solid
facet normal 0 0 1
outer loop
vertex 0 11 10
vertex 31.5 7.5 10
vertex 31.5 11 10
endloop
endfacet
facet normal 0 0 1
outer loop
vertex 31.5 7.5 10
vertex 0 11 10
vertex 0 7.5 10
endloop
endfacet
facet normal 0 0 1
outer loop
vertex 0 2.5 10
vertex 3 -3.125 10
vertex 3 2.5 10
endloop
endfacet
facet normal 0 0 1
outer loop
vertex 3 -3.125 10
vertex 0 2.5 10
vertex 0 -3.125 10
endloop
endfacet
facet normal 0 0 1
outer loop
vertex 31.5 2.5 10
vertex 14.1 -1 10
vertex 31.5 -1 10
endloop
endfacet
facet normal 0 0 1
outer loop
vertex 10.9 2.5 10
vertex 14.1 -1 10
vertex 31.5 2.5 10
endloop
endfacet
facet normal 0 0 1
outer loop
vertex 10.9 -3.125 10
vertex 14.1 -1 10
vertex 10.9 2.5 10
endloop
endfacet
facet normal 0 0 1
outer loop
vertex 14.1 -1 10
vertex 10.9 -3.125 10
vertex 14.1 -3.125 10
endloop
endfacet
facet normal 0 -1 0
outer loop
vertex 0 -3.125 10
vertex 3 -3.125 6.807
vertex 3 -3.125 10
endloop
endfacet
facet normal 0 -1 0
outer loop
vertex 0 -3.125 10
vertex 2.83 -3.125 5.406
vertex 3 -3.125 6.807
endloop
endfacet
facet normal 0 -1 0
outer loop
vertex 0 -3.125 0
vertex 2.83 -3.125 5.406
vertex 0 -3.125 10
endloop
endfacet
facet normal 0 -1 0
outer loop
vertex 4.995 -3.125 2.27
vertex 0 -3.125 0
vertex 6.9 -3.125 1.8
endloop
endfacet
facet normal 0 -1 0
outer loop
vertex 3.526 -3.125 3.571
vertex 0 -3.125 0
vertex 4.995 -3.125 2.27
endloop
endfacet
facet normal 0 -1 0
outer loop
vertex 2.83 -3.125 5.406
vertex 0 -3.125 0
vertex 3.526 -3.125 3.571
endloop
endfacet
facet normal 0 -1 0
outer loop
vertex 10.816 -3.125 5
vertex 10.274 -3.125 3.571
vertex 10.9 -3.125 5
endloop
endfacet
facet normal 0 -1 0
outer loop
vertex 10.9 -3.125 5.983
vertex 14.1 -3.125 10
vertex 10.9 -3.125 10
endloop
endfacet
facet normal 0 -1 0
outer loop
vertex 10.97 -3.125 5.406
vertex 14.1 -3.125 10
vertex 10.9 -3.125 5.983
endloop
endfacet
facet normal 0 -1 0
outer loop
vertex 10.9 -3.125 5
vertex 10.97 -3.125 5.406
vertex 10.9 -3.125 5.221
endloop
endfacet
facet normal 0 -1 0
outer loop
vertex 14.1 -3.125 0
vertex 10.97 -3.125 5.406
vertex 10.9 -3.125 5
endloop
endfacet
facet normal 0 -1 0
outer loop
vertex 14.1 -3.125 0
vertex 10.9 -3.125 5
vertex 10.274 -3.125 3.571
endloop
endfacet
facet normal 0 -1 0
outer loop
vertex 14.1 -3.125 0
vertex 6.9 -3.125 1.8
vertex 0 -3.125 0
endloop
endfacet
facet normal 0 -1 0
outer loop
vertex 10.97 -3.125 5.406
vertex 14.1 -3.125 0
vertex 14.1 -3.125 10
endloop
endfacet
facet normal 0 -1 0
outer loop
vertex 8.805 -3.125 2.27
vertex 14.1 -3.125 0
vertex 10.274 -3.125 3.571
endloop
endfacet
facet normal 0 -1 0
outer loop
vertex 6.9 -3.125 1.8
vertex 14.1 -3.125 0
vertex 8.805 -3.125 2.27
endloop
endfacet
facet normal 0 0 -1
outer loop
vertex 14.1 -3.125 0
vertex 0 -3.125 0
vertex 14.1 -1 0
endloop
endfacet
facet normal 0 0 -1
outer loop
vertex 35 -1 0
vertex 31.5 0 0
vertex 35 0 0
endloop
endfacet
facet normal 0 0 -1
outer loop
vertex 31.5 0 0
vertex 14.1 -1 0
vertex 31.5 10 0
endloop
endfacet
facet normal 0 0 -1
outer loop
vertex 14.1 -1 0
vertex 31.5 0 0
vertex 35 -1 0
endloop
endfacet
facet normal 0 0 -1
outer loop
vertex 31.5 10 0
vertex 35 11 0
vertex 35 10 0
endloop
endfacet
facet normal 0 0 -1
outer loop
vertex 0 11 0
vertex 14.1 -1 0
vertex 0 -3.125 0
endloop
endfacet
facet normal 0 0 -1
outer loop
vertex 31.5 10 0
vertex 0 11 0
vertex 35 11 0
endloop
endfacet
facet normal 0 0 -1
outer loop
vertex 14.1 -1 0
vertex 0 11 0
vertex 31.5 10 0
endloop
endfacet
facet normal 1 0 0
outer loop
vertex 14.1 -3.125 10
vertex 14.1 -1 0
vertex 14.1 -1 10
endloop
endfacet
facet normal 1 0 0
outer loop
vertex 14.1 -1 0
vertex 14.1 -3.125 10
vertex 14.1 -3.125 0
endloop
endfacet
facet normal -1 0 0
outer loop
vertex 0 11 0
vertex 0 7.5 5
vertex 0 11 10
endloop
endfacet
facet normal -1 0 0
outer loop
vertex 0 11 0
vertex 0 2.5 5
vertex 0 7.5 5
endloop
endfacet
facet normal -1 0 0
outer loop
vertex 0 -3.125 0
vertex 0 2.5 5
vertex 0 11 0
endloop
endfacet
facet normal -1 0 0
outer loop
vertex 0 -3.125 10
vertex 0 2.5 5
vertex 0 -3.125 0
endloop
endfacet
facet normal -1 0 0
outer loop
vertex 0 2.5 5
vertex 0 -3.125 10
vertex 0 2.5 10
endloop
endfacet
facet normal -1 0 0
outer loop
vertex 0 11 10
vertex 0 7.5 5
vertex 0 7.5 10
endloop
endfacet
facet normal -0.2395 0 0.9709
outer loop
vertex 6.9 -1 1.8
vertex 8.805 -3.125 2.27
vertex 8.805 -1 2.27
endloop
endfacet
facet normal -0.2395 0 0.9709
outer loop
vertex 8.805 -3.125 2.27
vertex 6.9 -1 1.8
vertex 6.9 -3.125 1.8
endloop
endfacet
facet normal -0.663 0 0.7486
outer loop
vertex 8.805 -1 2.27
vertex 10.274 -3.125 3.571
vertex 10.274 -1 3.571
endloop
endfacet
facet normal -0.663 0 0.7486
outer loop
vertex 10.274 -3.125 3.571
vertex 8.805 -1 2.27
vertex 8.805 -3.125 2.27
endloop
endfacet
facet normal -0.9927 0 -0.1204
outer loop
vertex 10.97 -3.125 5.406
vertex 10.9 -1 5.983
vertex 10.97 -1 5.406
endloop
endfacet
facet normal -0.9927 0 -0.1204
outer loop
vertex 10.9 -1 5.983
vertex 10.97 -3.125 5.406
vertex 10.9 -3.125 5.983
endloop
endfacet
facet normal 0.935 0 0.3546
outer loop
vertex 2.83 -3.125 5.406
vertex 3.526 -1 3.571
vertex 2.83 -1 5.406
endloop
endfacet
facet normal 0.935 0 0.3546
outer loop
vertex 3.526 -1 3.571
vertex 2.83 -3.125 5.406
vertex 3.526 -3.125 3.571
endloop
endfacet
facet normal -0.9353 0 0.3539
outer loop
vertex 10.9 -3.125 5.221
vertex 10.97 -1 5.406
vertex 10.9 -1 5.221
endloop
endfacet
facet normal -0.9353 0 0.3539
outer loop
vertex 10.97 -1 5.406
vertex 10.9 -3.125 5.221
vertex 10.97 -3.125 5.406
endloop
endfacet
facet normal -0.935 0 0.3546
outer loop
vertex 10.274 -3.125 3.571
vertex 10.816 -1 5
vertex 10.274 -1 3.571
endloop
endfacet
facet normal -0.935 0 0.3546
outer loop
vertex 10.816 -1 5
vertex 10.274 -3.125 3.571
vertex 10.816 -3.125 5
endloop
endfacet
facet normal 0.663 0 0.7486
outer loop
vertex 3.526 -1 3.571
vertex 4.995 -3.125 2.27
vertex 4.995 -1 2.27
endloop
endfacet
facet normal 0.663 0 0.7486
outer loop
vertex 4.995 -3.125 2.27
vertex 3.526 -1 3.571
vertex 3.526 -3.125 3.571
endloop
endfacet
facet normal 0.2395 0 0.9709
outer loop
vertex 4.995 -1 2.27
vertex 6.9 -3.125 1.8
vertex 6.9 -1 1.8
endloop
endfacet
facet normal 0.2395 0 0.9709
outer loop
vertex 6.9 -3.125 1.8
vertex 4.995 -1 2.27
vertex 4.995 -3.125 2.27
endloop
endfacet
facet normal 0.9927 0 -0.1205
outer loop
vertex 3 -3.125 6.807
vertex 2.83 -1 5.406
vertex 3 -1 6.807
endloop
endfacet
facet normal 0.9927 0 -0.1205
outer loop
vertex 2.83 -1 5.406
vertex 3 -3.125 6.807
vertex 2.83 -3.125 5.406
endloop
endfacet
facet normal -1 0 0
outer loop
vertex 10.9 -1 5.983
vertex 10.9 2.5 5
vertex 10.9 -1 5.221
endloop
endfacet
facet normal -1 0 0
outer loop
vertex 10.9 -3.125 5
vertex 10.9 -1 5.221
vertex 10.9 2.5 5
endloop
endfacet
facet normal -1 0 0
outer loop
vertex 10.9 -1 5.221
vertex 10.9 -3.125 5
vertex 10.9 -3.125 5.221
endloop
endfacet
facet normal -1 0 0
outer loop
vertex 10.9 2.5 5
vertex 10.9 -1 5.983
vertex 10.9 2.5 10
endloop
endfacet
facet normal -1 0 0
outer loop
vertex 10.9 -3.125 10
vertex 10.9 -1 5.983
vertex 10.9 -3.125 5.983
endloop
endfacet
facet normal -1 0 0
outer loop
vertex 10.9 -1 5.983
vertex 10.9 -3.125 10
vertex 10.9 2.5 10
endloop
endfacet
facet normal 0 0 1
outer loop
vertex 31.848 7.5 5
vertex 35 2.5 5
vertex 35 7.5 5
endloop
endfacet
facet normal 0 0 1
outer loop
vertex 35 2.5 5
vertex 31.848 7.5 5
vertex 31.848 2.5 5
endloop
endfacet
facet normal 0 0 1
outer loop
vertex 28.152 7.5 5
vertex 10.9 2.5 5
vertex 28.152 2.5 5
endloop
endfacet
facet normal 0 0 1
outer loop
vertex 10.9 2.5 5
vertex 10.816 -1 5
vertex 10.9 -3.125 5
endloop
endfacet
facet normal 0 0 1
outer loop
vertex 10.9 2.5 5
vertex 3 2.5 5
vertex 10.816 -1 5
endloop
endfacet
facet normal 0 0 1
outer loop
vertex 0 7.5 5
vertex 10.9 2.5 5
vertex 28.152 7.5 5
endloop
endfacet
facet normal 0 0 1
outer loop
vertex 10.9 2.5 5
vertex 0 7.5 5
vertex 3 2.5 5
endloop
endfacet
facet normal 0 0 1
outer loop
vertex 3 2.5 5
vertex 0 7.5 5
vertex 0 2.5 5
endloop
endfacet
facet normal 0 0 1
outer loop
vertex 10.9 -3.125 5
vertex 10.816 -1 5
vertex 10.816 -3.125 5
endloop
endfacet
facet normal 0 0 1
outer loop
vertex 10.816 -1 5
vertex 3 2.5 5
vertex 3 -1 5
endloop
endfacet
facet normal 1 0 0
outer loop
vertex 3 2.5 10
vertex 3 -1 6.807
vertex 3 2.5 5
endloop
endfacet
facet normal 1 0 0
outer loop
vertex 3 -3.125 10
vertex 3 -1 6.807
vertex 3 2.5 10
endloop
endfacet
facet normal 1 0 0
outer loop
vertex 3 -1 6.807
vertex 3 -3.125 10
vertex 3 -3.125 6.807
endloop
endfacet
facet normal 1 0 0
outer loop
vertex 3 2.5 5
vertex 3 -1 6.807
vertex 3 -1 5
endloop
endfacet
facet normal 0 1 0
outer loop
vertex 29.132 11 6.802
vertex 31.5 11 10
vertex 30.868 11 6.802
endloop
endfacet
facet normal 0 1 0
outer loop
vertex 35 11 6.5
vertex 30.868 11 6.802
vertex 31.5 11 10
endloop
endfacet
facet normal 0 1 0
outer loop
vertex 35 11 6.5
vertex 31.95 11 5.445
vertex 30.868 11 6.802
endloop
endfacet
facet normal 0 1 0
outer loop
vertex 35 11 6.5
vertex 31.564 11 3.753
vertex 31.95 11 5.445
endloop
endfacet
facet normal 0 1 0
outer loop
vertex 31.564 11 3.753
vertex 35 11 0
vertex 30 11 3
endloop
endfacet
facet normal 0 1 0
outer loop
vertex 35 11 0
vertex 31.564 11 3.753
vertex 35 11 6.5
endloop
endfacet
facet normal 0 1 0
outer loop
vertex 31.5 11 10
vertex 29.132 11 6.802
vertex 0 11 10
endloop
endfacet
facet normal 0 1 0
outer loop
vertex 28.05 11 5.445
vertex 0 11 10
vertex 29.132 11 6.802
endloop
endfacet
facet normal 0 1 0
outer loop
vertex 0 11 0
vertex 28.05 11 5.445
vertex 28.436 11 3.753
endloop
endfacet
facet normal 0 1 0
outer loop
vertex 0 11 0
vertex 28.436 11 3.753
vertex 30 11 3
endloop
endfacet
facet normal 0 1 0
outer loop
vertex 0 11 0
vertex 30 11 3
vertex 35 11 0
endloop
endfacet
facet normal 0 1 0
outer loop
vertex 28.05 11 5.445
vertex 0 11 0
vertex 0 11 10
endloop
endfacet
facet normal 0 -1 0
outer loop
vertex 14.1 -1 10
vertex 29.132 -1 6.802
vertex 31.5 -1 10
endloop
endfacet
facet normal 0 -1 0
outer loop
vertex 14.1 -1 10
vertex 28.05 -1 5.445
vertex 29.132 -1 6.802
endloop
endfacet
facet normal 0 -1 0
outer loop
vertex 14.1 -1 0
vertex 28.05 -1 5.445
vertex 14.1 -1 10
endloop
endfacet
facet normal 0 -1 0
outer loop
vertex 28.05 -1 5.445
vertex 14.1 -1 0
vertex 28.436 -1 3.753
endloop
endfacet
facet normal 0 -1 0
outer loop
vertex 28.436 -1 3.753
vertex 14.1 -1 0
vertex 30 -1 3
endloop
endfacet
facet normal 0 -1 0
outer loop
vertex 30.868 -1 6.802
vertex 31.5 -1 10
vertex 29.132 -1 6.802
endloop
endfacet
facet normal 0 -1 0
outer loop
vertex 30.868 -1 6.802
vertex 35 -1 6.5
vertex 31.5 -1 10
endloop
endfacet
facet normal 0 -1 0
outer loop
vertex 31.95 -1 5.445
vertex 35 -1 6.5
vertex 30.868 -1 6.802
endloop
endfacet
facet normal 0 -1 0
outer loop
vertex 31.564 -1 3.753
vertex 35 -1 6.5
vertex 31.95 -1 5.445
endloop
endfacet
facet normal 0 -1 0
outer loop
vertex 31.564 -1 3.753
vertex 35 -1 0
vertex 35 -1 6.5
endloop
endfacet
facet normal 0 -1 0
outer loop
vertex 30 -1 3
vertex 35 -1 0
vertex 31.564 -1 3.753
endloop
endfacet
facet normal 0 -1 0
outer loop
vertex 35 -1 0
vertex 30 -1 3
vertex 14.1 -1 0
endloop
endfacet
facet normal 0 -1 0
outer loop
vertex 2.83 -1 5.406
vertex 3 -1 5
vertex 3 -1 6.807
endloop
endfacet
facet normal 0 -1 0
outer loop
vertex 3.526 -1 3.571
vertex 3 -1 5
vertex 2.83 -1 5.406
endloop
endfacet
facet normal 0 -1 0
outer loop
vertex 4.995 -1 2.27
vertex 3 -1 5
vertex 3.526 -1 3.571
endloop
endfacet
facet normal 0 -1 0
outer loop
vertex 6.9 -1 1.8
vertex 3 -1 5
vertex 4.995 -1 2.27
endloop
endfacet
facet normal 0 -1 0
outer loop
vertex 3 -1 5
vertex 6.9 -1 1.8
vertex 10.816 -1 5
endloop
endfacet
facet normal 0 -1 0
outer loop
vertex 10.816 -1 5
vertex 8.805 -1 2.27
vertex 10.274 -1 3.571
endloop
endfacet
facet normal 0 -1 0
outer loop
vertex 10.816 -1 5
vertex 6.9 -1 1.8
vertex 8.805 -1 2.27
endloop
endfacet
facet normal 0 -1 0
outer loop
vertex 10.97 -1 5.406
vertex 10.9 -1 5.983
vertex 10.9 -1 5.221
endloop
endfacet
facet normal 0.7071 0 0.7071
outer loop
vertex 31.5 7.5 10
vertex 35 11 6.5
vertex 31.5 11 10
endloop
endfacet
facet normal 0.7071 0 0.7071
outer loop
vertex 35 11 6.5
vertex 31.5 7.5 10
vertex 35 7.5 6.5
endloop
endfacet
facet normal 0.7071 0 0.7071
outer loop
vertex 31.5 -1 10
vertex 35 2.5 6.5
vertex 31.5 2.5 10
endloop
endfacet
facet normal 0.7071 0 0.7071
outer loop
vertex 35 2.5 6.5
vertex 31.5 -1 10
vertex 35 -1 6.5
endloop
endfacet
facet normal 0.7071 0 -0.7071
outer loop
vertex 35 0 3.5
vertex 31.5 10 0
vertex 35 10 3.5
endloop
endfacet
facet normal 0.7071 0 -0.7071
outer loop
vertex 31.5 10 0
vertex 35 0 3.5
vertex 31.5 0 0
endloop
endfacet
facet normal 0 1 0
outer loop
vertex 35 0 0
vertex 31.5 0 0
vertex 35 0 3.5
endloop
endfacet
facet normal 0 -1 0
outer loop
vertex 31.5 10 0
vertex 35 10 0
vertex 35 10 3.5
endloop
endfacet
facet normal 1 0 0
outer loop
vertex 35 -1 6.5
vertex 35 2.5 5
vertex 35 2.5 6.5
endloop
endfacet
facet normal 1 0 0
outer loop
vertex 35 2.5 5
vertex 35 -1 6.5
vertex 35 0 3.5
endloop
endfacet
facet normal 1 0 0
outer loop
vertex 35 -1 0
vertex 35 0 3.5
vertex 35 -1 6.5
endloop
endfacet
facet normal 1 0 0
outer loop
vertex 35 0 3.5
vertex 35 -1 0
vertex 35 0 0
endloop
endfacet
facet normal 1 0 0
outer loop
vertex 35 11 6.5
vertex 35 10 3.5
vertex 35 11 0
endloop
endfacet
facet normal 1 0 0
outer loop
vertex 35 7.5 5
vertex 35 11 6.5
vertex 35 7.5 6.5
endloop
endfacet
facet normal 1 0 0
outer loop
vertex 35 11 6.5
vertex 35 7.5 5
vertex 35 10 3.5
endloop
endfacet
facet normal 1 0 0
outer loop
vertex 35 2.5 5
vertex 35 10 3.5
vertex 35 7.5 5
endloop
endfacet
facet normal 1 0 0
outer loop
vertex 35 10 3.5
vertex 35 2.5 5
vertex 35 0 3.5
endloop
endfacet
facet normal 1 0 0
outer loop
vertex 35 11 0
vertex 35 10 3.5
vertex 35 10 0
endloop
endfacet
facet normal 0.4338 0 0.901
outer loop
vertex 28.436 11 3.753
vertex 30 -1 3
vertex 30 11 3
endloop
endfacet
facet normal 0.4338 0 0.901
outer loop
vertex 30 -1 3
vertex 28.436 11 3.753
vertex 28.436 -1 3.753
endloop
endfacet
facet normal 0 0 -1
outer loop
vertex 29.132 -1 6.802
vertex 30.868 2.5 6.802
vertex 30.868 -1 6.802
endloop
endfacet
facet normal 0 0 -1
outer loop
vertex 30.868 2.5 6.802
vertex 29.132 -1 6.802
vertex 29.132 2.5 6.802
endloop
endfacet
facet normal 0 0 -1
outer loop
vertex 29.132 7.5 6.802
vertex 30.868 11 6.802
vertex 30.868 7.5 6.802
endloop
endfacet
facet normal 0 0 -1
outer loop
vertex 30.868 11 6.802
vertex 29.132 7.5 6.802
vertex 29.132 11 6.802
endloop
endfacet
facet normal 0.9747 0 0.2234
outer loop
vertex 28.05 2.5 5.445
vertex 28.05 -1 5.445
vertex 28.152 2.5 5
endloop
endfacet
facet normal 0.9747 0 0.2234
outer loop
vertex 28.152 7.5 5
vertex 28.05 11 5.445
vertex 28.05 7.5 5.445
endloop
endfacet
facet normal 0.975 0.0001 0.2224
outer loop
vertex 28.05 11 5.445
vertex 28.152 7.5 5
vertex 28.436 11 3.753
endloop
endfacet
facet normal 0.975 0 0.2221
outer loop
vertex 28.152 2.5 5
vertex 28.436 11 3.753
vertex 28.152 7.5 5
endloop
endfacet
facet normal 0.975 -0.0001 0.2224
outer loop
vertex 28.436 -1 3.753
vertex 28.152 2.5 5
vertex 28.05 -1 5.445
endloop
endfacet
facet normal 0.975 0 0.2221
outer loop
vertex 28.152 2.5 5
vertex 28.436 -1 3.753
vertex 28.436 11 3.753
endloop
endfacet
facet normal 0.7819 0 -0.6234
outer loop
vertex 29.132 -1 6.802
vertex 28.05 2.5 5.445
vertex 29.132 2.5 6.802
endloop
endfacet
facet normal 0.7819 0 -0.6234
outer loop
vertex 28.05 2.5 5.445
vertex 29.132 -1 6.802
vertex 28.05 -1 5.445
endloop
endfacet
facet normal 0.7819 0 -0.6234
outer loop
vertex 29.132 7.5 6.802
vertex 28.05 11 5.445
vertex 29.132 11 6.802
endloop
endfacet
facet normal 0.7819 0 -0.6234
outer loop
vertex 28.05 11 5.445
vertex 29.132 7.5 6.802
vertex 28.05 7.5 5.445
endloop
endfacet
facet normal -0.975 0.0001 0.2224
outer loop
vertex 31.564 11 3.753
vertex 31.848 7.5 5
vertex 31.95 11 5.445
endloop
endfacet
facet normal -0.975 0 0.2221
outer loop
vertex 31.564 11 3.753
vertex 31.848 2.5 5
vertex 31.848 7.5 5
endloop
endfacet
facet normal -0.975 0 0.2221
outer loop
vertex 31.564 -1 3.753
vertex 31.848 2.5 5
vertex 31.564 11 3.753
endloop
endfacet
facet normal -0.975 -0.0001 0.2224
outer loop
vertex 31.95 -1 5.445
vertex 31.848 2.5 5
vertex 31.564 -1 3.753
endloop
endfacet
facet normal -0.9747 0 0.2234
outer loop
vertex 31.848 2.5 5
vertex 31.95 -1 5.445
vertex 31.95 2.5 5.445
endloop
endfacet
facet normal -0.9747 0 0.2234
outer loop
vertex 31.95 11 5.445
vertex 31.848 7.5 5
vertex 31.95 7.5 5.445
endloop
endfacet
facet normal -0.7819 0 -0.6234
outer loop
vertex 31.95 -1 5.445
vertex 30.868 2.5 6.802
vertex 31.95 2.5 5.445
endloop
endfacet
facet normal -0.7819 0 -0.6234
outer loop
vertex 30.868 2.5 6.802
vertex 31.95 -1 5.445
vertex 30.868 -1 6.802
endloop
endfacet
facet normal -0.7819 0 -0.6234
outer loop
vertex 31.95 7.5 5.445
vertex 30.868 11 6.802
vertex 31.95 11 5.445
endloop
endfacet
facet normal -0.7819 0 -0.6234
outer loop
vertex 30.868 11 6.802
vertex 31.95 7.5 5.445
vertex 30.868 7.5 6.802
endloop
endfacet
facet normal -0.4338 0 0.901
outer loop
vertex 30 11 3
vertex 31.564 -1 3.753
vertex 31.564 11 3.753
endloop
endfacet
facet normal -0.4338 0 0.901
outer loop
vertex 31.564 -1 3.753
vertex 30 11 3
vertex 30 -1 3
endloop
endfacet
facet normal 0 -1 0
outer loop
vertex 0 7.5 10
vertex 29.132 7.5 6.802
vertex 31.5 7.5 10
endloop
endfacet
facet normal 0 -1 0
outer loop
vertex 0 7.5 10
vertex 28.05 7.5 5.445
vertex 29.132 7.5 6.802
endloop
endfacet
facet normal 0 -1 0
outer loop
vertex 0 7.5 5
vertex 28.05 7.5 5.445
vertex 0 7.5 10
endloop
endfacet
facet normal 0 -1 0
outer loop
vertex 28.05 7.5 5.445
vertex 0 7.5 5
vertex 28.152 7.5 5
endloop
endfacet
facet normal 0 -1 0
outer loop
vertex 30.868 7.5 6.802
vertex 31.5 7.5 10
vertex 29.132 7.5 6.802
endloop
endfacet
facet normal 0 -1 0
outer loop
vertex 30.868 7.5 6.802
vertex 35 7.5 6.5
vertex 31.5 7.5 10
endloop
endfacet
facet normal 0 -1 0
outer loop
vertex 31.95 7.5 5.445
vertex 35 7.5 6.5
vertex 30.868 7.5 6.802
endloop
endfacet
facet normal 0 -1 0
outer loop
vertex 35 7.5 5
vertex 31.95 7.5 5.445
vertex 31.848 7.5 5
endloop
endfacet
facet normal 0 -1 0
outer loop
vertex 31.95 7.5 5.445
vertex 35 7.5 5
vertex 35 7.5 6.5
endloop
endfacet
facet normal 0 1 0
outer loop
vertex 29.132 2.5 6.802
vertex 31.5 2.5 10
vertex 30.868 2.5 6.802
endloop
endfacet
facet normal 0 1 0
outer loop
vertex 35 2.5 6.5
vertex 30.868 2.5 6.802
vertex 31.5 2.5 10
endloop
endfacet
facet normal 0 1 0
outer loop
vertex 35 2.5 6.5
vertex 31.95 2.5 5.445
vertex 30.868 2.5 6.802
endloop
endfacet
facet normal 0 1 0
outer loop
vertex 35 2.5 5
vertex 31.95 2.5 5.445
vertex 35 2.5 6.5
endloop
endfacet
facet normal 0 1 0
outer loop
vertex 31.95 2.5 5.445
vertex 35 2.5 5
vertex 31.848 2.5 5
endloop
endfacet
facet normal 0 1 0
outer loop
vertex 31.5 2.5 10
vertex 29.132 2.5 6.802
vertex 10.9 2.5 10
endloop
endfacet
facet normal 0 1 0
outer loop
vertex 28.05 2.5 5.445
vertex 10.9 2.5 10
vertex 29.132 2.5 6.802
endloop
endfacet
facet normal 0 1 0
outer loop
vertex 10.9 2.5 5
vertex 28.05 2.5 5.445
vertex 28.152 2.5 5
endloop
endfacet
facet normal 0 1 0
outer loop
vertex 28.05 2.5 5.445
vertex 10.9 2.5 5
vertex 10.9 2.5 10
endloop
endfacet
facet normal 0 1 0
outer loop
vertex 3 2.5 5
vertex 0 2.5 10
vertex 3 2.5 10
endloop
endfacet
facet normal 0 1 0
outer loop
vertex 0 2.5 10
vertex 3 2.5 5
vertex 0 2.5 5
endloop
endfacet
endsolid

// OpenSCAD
/*
Erica Umlor Wire Following Sensor Holder for MSE4777

Created: 04/16/2020
Description: This is for my GrowBot project
for senior design. This is the right end to the wire 
following sensor holders. This end has a slot for 
the inductor to sit in. Don't try to edit this code.
Most of it is not parametric, and it should fit just
fine with this this project. 
*/

sensorEndR(); 

// values
holeL = 15;    // length of pin hole
holeR = 2;     // pin hole radius
brace = 4;     // width 
w = 10;        // height and length
h1 = 35;       // length of inductor end
h2 = 25;       // length of inductor slot
depth = 4.1;   // depth of inductor slot
width = depth; // depth of inductor slot
more = 2;

module sensorEndR() {
    translate([0,0,10]) {
      rotate([0,90,0]) {
        union() {
          difference() {  
            rotate([90,0,0])
             // right inductor pocket
             translate([0,0,0])  
             cube([w,w+width,h2/8]);  
             
             // pocket slot hole
             rotate([90,0,0])
             translate([width,6.9,0])  
             cylinder(h2/2,width,width); 
              
             // inductor cutout 
             translate([0,-15,3])
             cube([5,30,8.8+width-5]);
          }           
          difference() {       
            // main body
            translate([0,-more/2,0])
            cube([w,w+more,h1]);
    
            // top hole
            translate([w/2,-20,h1-w/2])
            rotate([-90,0,0])
            cylinder(holeL*4,holeR,holeR);
        
            // wire slot
            translate([0,w/4,0])
            cube([w/2,w/2,h1]);
         
            // inductor slot
            translate([0,-3,3])
            cube([5,5+more,8.8+width-5]);
             
            rotate([0,0,270]){
              translate([-w,0,0]) {
                // chamfer top
                translate([-more/2,-w/4,h1-w/2-1])
                rotate([45,0,0])
                cube([w+more,w,w]);

                // chamfer bottom
                translate([0,w*5/4,h1-w/2-1])
                rotate([45,0,0])
                cube([w,w,w]);
              }
            }
          }
        }    
      }   
    }
}
